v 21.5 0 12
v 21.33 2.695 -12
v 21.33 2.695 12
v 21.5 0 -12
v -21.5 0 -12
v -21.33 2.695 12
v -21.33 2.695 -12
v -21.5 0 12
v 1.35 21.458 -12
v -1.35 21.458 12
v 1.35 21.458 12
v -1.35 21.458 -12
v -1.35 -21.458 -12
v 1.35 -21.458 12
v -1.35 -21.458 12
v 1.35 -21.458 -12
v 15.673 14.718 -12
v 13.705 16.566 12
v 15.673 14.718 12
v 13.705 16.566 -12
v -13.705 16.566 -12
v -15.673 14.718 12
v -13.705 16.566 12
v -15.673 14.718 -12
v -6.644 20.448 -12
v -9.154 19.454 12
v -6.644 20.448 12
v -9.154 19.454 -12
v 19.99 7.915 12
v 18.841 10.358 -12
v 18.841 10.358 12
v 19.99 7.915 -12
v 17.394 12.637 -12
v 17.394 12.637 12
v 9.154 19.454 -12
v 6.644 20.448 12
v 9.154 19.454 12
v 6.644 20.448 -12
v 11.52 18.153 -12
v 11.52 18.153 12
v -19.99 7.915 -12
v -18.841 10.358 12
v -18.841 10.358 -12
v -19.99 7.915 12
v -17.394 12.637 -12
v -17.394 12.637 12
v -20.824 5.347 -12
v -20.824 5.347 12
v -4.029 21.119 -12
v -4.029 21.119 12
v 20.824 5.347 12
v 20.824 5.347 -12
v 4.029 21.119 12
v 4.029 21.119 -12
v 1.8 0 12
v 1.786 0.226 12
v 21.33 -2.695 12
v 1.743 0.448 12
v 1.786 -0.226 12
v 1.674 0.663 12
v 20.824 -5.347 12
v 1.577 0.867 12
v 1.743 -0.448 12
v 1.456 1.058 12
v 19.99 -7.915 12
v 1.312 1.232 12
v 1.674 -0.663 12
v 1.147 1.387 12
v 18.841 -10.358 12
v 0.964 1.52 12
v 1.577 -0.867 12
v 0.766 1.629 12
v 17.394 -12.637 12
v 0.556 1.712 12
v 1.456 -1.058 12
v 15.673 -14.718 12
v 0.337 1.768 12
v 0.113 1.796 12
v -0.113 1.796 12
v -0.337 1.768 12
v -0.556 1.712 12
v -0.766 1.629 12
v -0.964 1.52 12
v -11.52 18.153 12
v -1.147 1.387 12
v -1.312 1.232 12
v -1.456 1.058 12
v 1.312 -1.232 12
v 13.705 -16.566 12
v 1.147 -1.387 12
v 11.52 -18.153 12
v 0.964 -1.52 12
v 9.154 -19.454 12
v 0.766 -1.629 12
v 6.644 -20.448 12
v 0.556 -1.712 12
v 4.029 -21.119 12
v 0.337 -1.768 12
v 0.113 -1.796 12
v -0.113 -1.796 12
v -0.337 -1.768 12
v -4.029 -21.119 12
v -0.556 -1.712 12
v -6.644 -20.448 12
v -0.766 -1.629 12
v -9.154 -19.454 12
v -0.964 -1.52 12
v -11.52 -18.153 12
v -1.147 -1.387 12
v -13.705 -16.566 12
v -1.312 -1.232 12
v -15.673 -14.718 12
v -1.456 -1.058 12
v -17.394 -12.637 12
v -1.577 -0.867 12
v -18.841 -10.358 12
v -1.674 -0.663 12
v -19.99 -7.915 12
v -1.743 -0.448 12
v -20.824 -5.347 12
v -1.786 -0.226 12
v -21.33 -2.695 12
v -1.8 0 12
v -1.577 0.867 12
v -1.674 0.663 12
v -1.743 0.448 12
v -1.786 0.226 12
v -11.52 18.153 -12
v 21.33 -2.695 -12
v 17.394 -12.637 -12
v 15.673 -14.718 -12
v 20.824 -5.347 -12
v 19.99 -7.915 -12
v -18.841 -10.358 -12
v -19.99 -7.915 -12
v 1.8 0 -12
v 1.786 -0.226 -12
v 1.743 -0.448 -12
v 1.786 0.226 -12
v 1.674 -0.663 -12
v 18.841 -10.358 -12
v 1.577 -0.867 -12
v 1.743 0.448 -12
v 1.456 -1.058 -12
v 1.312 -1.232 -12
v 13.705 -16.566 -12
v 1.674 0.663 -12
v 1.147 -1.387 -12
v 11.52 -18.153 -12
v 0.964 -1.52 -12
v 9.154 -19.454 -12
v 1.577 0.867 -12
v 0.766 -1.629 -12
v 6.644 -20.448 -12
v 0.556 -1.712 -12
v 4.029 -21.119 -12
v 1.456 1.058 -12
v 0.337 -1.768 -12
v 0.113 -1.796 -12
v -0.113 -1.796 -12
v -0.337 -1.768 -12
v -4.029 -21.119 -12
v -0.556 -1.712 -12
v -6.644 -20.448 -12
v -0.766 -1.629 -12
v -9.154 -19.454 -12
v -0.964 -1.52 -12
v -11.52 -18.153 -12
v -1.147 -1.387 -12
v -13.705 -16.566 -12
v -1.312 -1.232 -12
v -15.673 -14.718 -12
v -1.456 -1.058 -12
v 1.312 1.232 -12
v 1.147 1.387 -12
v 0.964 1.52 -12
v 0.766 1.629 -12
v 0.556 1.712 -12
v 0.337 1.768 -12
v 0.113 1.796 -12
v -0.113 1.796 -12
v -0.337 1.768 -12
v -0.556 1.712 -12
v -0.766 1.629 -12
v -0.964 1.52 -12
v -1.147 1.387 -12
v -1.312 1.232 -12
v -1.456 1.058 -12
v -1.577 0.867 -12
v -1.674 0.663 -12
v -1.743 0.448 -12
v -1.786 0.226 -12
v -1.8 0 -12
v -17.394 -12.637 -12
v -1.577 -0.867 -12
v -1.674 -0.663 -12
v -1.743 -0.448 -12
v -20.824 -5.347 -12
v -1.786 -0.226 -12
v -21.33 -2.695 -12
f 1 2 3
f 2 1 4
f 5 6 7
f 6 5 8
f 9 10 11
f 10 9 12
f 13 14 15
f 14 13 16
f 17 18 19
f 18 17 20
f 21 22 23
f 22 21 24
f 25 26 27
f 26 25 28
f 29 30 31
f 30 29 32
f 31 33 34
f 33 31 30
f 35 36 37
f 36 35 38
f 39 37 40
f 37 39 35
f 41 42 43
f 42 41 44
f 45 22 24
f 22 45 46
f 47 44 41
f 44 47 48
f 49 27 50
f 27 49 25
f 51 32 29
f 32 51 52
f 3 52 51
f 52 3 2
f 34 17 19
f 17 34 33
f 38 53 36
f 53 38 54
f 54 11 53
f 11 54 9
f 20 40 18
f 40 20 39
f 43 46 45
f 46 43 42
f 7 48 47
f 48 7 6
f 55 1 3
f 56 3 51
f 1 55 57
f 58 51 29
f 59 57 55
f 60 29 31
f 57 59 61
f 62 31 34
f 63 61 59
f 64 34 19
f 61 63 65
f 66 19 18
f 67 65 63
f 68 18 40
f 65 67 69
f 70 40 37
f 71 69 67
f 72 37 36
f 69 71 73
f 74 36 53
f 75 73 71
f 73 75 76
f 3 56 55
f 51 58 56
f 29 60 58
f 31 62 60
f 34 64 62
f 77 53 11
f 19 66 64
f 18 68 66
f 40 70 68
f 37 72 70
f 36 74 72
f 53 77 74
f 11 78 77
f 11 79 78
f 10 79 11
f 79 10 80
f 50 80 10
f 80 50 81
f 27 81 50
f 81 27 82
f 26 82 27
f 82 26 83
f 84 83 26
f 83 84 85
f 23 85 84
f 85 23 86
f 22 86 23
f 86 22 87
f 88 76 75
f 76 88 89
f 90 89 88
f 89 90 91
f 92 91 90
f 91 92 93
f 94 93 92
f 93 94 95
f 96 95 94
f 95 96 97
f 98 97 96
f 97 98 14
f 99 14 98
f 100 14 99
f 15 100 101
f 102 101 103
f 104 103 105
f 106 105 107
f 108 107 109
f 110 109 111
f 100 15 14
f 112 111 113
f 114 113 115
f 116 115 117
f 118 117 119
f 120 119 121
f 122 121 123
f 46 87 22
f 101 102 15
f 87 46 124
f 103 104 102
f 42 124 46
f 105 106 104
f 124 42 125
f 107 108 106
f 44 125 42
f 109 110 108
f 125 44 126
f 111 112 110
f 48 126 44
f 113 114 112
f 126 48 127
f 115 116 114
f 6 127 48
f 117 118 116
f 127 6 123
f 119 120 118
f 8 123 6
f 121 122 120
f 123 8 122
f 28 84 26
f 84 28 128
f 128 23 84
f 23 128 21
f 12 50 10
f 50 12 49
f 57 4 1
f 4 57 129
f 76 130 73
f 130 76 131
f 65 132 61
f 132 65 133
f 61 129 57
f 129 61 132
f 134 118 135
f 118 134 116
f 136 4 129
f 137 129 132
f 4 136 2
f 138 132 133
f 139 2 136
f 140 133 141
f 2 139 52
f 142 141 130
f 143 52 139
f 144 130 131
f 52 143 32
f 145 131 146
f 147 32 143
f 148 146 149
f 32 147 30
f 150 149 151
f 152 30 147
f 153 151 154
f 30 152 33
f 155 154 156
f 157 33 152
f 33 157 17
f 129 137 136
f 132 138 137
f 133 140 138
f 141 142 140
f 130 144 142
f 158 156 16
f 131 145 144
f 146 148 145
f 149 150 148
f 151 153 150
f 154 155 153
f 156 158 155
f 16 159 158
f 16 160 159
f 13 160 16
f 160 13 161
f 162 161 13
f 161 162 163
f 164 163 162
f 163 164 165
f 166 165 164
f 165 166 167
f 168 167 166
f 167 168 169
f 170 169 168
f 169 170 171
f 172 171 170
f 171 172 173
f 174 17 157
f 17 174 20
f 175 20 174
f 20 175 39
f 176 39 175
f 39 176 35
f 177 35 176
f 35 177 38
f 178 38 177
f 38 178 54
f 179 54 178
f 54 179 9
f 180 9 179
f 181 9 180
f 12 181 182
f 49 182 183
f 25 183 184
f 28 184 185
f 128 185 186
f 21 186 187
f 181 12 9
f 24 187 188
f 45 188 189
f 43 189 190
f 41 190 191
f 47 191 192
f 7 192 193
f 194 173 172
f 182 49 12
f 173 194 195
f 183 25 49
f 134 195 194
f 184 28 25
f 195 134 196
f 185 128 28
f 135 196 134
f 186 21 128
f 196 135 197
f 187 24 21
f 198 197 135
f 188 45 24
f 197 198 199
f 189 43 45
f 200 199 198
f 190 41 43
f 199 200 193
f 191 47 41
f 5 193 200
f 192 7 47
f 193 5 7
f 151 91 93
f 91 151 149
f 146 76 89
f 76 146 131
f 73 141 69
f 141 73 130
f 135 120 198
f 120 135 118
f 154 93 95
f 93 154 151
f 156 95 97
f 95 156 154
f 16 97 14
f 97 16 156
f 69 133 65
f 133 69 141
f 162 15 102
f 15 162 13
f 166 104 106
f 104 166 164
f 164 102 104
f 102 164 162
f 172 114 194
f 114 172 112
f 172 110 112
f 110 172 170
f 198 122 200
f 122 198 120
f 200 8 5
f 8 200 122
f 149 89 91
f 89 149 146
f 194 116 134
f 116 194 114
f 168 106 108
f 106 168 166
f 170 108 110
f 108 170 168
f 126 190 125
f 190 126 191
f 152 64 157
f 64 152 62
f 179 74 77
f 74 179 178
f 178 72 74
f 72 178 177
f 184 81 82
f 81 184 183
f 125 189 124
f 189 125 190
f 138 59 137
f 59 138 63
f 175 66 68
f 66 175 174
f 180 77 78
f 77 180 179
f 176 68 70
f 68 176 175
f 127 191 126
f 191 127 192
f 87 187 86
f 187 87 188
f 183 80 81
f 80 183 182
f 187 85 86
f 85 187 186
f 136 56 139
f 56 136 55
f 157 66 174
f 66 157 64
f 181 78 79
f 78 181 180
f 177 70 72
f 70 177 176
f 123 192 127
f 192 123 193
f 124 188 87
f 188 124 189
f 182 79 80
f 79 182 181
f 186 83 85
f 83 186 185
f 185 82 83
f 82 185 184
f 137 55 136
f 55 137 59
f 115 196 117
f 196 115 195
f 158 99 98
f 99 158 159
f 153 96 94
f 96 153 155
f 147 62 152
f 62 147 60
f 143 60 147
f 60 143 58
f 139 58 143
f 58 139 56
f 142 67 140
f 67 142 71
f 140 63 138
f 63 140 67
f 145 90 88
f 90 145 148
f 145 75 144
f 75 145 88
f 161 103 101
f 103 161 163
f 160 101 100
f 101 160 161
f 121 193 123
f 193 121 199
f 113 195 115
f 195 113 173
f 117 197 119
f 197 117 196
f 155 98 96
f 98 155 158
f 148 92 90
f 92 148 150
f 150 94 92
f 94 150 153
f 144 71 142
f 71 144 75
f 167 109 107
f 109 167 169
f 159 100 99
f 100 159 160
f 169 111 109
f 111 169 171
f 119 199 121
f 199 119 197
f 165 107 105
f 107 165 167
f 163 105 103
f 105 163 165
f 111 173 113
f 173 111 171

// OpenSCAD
$fn = 50;


difference() {
	union() {
		translate(v = [0, 0, -12.0000000000]) {
			cylinder(h = 24, r = 21.5000000000);
		}
	}
	union() {
		translate(v = [0, 0, -100.0000000000]) {
			cylinder(h = 200, r = 1.8000000000);
		}
	}
}
